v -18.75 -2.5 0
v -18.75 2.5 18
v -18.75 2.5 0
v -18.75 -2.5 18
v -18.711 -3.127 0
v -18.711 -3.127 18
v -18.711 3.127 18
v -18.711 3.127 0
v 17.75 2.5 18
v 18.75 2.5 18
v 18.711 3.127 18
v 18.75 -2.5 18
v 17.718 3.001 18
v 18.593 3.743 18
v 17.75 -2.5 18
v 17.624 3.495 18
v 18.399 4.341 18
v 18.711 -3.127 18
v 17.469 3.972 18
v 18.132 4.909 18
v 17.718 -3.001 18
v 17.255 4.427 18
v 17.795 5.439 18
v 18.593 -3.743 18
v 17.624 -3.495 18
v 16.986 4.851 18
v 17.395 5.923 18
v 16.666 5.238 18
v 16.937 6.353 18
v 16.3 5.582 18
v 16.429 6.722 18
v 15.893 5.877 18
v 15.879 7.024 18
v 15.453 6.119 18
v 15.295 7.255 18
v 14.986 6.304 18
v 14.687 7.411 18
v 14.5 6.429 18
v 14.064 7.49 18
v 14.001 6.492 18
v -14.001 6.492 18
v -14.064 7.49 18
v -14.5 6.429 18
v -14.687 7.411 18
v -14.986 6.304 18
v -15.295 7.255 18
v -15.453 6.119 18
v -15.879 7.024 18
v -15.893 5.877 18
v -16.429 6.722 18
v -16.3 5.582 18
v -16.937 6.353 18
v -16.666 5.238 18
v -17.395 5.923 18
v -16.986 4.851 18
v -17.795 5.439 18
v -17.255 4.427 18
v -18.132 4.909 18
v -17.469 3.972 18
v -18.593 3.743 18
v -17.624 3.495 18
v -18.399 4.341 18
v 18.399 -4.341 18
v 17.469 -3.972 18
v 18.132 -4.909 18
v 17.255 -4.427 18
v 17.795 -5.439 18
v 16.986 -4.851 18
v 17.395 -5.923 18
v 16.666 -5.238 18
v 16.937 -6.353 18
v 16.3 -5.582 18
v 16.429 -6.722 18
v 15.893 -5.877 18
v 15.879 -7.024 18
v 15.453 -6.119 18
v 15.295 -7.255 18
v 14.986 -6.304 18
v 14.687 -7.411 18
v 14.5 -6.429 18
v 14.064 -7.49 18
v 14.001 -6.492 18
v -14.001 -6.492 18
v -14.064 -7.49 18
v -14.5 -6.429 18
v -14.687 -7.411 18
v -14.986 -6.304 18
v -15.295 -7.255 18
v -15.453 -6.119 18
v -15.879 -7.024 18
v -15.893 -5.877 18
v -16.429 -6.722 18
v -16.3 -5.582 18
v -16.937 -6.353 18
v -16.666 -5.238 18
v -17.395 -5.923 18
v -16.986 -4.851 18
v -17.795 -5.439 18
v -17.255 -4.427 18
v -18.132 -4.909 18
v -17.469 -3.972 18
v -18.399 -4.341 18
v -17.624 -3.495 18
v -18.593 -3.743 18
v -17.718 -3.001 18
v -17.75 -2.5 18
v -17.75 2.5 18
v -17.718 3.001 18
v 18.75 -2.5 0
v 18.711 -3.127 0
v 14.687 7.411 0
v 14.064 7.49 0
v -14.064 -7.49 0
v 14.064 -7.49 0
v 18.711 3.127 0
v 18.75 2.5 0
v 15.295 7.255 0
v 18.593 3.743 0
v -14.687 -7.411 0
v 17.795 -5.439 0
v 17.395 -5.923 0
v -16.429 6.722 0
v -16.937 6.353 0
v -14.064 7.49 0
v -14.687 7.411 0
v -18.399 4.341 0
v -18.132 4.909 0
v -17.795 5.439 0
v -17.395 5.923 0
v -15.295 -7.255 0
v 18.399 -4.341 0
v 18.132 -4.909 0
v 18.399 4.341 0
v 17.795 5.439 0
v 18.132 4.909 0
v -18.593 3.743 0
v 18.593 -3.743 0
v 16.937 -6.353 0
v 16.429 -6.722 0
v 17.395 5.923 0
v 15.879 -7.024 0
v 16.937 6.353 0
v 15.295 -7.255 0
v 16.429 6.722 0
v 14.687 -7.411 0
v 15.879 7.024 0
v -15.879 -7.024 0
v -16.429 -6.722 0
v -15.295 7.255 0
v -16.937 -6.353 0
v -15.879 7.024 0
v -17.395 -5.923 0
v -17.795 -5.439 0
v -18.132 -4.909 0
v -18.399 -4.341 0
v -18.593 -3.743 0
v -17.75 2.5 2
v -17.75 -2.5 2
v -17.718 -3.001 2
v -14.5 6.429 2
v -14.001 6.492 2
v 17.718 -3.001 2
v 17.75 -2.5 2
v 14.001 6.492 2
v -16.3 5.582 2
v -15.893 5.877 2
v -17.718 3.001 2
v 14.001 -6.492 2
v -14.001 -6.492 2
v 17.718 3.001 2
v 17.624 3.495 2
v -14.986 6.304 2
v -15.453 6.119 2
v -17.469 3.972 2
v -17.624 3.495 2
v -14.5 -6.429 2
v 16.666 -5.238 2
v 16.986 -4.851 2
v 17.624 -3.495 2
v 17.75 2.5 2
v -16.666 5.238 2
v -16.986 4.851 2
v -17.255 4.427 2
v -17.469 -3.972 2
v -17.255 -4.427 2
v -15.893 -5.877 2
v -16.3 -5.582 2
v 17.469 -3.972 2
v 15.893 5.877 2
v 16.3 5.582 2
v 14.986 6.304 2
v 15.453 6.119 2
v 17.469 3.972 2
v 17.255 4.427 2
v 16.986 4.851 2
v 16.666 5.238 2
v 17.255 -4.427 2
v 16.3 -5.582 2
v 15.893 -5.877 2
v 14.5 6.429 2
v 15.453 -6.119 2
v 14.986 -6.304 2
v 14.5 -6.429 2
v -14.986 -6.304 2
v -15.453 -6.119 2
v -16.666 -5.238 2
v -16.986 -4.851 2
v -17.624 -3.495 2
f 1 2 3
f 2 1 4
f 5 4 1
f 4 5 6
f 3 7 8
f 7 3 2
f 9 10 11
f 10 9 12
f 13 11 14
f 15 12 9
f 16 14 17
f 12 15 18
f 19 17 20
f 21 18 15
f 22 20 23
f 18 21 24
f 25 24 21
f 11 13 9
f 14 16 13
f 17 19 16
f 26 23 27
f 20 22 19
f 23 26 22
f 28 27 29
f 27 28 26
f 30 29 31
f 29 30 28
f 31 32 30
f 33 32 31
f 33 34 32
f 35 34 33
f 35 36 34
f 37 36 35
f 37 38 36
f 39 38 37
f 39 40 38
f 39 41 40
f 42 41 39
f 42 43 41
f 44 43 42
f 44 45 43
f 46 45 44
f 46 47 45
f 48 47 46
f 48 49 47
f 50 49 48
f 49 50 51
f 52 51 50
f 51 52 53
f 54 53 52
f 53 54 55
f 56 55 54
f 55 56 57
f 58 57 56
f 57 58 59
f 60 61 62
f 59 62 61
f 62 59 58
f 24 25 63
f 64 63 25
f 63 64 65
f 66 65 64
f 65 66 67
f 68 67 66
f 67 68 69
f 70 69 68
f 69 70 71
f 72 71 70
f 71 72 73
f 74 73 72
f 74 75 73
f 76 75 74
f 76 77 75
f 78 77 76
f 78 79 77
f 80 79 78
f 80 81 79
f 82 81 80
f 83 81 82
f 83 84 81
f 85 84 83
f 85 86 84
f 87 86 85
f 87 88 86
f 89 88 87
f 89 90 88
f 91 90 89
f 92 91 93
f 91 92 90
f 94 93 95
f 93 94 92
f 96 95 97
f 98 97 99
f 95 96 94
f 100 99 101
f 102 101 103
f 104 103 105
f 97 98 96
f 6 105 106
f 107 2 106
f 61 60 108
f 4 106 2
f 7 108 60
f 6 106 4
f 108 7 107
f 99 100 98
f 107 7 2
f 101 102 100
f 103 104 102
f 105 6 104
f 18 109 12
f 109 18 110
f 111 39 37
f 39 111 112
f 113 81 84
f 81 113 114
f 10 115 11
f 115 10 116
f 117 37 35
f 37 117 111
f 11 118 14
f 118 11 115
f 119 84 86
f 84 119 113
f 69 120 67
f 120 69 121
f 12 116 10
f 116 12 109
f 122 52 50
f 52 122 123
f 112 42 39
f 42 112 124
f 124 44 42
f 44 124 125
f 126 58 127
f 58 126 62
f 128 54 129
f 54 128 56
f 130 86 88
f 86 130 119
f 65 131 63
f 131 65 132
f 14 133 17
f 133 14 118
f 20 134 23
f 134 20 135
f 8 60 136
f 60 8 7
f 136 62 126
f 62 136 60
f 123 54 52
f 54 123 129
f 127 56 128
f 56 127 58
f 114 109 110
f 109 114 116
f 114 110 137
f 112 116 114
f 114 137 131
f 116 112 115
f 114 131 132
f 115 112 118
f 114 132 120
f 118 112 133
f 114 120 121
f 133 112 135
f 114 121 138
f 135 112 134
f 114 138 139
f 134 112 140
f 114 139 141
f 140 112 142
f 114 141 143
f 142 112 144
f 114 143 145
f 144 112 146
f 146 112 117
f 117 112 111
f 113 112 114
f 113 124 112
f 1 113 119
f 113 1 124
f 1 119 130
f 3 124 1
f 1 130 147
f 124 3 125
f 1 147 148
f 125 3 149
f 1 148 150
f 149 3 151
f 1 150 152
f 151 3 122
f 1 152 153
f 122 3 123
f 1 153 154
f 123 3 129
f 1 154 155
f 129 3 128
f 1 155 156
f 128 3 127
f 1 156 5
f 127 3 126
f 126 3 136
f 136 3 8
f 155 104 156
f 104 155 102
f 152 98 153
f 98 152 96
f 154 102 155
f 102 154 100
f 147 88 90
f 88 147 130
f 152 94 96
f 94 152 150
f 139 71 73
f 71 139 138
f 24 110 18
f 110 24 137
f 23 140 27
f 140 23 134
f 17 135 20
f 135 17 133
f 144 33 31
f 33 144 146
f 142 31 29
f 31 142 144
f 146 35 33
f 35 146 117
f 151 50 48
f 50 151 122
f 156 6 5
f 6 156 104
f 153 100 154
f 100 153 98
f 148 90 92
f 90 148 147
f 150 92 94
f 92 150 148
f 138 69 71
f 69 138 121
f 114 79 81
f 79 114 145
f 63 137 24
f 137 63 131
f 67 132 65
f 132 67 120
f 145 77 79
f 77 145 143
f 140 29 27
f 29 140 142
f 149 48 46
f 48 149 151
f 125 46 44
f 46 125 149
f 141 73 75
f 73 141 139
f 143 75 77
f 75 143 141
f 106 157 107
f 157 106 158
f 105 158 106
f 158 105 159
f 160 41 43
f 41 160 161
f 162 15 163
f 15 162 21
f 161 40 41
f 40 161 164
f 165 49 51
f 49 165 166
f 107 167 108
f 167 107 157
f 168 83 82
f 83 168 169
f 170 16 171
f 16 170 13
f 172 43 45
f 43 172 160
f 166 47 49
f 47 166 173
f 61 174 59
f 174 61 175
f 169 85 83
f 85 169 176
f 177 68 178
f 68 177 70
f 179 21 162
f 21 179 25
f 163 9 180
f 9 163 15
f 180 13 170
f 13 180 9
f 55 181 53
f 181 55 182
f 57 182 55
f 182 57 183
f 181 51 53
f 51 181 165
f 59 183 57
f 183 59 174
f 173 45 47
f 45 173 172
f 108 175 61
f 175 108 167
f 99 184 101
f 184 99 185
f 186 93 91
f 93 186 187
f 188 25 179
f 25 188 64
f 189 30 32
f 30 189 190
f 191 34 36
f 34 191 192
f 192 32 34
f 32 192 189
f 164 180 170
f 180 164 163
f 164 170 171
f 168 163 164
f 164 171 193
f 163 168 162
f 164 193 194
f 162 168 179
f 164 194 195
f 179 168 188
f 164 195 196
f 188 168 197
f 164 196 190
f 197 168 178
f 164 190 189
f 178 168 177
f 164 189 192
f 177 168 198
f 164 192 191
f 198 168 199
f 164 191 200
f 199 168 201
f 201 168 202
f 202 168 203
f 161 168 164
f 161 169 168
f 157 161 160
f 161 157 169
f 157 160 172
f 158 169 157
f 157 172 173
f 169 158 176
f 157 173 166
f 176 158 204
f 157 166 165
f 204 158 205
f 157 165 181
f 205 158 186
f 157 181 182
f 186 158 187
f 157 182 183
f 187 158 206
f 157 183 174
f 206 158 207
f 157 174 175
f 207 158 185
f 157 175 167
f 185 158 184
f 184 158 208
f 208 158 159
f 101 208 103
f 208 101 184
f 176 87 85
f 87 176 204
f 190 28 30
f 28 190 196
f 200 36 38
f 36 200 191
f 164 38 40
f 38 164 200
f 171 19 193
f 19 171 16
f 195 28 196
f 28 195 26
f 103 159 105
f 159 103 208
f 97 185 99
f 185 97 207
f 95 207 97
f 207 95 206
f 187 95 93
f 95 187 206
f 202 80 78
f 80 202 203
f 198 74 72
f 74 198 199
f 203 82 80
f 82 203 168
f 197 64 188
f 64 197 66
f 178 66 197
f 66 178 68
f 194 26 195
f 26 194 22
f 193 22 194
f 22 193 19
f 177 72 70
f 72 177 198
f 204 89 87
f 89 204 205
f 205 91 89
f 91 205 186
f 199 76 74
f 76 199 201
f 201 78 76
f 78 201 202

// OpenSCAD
$fn = 50;


difference() {
	union() {
		hull() {
			translate(v = [-13.7500000000, 2.5000000000, 0]) {
				cylinder(h = 18, r = 5);
			}
			translate(v = [13.7500000000, 2.5000000000, 0]) {
				cylinder(h = 18, r = 5);
			}
			translate(v = [-13.7500000000, -2.5000000000, 0]) {
				cylinder(h = 18, r = 5);
			}
			translate(v = [13.7500000000, -2.5000000000, 0]) {
				cylinder(h = 18, r = 5);
			}
		}
	}
	union() {
		translate(v = [0, 0, 2]) {
			hull() {
				translate(v = [-13.7500000000, 2.5000000000, 0]) {
					cylinder(h = 16, r = 4);
				}
				translate(v = [13.7500000000, 2.5000000000, 0]) {
					cylinder(h = 16, r = 4);
				}
				translate(v = [-13.7500000000, -2.5000000000, 0]) {
					cylinder(h = 16, r = 4);
				}
				translate(v = [13.7500000000, -2.5000000000, 0]) {
					cylinder(h = 16, r = 4);
				}
			}
		}
	}
}
